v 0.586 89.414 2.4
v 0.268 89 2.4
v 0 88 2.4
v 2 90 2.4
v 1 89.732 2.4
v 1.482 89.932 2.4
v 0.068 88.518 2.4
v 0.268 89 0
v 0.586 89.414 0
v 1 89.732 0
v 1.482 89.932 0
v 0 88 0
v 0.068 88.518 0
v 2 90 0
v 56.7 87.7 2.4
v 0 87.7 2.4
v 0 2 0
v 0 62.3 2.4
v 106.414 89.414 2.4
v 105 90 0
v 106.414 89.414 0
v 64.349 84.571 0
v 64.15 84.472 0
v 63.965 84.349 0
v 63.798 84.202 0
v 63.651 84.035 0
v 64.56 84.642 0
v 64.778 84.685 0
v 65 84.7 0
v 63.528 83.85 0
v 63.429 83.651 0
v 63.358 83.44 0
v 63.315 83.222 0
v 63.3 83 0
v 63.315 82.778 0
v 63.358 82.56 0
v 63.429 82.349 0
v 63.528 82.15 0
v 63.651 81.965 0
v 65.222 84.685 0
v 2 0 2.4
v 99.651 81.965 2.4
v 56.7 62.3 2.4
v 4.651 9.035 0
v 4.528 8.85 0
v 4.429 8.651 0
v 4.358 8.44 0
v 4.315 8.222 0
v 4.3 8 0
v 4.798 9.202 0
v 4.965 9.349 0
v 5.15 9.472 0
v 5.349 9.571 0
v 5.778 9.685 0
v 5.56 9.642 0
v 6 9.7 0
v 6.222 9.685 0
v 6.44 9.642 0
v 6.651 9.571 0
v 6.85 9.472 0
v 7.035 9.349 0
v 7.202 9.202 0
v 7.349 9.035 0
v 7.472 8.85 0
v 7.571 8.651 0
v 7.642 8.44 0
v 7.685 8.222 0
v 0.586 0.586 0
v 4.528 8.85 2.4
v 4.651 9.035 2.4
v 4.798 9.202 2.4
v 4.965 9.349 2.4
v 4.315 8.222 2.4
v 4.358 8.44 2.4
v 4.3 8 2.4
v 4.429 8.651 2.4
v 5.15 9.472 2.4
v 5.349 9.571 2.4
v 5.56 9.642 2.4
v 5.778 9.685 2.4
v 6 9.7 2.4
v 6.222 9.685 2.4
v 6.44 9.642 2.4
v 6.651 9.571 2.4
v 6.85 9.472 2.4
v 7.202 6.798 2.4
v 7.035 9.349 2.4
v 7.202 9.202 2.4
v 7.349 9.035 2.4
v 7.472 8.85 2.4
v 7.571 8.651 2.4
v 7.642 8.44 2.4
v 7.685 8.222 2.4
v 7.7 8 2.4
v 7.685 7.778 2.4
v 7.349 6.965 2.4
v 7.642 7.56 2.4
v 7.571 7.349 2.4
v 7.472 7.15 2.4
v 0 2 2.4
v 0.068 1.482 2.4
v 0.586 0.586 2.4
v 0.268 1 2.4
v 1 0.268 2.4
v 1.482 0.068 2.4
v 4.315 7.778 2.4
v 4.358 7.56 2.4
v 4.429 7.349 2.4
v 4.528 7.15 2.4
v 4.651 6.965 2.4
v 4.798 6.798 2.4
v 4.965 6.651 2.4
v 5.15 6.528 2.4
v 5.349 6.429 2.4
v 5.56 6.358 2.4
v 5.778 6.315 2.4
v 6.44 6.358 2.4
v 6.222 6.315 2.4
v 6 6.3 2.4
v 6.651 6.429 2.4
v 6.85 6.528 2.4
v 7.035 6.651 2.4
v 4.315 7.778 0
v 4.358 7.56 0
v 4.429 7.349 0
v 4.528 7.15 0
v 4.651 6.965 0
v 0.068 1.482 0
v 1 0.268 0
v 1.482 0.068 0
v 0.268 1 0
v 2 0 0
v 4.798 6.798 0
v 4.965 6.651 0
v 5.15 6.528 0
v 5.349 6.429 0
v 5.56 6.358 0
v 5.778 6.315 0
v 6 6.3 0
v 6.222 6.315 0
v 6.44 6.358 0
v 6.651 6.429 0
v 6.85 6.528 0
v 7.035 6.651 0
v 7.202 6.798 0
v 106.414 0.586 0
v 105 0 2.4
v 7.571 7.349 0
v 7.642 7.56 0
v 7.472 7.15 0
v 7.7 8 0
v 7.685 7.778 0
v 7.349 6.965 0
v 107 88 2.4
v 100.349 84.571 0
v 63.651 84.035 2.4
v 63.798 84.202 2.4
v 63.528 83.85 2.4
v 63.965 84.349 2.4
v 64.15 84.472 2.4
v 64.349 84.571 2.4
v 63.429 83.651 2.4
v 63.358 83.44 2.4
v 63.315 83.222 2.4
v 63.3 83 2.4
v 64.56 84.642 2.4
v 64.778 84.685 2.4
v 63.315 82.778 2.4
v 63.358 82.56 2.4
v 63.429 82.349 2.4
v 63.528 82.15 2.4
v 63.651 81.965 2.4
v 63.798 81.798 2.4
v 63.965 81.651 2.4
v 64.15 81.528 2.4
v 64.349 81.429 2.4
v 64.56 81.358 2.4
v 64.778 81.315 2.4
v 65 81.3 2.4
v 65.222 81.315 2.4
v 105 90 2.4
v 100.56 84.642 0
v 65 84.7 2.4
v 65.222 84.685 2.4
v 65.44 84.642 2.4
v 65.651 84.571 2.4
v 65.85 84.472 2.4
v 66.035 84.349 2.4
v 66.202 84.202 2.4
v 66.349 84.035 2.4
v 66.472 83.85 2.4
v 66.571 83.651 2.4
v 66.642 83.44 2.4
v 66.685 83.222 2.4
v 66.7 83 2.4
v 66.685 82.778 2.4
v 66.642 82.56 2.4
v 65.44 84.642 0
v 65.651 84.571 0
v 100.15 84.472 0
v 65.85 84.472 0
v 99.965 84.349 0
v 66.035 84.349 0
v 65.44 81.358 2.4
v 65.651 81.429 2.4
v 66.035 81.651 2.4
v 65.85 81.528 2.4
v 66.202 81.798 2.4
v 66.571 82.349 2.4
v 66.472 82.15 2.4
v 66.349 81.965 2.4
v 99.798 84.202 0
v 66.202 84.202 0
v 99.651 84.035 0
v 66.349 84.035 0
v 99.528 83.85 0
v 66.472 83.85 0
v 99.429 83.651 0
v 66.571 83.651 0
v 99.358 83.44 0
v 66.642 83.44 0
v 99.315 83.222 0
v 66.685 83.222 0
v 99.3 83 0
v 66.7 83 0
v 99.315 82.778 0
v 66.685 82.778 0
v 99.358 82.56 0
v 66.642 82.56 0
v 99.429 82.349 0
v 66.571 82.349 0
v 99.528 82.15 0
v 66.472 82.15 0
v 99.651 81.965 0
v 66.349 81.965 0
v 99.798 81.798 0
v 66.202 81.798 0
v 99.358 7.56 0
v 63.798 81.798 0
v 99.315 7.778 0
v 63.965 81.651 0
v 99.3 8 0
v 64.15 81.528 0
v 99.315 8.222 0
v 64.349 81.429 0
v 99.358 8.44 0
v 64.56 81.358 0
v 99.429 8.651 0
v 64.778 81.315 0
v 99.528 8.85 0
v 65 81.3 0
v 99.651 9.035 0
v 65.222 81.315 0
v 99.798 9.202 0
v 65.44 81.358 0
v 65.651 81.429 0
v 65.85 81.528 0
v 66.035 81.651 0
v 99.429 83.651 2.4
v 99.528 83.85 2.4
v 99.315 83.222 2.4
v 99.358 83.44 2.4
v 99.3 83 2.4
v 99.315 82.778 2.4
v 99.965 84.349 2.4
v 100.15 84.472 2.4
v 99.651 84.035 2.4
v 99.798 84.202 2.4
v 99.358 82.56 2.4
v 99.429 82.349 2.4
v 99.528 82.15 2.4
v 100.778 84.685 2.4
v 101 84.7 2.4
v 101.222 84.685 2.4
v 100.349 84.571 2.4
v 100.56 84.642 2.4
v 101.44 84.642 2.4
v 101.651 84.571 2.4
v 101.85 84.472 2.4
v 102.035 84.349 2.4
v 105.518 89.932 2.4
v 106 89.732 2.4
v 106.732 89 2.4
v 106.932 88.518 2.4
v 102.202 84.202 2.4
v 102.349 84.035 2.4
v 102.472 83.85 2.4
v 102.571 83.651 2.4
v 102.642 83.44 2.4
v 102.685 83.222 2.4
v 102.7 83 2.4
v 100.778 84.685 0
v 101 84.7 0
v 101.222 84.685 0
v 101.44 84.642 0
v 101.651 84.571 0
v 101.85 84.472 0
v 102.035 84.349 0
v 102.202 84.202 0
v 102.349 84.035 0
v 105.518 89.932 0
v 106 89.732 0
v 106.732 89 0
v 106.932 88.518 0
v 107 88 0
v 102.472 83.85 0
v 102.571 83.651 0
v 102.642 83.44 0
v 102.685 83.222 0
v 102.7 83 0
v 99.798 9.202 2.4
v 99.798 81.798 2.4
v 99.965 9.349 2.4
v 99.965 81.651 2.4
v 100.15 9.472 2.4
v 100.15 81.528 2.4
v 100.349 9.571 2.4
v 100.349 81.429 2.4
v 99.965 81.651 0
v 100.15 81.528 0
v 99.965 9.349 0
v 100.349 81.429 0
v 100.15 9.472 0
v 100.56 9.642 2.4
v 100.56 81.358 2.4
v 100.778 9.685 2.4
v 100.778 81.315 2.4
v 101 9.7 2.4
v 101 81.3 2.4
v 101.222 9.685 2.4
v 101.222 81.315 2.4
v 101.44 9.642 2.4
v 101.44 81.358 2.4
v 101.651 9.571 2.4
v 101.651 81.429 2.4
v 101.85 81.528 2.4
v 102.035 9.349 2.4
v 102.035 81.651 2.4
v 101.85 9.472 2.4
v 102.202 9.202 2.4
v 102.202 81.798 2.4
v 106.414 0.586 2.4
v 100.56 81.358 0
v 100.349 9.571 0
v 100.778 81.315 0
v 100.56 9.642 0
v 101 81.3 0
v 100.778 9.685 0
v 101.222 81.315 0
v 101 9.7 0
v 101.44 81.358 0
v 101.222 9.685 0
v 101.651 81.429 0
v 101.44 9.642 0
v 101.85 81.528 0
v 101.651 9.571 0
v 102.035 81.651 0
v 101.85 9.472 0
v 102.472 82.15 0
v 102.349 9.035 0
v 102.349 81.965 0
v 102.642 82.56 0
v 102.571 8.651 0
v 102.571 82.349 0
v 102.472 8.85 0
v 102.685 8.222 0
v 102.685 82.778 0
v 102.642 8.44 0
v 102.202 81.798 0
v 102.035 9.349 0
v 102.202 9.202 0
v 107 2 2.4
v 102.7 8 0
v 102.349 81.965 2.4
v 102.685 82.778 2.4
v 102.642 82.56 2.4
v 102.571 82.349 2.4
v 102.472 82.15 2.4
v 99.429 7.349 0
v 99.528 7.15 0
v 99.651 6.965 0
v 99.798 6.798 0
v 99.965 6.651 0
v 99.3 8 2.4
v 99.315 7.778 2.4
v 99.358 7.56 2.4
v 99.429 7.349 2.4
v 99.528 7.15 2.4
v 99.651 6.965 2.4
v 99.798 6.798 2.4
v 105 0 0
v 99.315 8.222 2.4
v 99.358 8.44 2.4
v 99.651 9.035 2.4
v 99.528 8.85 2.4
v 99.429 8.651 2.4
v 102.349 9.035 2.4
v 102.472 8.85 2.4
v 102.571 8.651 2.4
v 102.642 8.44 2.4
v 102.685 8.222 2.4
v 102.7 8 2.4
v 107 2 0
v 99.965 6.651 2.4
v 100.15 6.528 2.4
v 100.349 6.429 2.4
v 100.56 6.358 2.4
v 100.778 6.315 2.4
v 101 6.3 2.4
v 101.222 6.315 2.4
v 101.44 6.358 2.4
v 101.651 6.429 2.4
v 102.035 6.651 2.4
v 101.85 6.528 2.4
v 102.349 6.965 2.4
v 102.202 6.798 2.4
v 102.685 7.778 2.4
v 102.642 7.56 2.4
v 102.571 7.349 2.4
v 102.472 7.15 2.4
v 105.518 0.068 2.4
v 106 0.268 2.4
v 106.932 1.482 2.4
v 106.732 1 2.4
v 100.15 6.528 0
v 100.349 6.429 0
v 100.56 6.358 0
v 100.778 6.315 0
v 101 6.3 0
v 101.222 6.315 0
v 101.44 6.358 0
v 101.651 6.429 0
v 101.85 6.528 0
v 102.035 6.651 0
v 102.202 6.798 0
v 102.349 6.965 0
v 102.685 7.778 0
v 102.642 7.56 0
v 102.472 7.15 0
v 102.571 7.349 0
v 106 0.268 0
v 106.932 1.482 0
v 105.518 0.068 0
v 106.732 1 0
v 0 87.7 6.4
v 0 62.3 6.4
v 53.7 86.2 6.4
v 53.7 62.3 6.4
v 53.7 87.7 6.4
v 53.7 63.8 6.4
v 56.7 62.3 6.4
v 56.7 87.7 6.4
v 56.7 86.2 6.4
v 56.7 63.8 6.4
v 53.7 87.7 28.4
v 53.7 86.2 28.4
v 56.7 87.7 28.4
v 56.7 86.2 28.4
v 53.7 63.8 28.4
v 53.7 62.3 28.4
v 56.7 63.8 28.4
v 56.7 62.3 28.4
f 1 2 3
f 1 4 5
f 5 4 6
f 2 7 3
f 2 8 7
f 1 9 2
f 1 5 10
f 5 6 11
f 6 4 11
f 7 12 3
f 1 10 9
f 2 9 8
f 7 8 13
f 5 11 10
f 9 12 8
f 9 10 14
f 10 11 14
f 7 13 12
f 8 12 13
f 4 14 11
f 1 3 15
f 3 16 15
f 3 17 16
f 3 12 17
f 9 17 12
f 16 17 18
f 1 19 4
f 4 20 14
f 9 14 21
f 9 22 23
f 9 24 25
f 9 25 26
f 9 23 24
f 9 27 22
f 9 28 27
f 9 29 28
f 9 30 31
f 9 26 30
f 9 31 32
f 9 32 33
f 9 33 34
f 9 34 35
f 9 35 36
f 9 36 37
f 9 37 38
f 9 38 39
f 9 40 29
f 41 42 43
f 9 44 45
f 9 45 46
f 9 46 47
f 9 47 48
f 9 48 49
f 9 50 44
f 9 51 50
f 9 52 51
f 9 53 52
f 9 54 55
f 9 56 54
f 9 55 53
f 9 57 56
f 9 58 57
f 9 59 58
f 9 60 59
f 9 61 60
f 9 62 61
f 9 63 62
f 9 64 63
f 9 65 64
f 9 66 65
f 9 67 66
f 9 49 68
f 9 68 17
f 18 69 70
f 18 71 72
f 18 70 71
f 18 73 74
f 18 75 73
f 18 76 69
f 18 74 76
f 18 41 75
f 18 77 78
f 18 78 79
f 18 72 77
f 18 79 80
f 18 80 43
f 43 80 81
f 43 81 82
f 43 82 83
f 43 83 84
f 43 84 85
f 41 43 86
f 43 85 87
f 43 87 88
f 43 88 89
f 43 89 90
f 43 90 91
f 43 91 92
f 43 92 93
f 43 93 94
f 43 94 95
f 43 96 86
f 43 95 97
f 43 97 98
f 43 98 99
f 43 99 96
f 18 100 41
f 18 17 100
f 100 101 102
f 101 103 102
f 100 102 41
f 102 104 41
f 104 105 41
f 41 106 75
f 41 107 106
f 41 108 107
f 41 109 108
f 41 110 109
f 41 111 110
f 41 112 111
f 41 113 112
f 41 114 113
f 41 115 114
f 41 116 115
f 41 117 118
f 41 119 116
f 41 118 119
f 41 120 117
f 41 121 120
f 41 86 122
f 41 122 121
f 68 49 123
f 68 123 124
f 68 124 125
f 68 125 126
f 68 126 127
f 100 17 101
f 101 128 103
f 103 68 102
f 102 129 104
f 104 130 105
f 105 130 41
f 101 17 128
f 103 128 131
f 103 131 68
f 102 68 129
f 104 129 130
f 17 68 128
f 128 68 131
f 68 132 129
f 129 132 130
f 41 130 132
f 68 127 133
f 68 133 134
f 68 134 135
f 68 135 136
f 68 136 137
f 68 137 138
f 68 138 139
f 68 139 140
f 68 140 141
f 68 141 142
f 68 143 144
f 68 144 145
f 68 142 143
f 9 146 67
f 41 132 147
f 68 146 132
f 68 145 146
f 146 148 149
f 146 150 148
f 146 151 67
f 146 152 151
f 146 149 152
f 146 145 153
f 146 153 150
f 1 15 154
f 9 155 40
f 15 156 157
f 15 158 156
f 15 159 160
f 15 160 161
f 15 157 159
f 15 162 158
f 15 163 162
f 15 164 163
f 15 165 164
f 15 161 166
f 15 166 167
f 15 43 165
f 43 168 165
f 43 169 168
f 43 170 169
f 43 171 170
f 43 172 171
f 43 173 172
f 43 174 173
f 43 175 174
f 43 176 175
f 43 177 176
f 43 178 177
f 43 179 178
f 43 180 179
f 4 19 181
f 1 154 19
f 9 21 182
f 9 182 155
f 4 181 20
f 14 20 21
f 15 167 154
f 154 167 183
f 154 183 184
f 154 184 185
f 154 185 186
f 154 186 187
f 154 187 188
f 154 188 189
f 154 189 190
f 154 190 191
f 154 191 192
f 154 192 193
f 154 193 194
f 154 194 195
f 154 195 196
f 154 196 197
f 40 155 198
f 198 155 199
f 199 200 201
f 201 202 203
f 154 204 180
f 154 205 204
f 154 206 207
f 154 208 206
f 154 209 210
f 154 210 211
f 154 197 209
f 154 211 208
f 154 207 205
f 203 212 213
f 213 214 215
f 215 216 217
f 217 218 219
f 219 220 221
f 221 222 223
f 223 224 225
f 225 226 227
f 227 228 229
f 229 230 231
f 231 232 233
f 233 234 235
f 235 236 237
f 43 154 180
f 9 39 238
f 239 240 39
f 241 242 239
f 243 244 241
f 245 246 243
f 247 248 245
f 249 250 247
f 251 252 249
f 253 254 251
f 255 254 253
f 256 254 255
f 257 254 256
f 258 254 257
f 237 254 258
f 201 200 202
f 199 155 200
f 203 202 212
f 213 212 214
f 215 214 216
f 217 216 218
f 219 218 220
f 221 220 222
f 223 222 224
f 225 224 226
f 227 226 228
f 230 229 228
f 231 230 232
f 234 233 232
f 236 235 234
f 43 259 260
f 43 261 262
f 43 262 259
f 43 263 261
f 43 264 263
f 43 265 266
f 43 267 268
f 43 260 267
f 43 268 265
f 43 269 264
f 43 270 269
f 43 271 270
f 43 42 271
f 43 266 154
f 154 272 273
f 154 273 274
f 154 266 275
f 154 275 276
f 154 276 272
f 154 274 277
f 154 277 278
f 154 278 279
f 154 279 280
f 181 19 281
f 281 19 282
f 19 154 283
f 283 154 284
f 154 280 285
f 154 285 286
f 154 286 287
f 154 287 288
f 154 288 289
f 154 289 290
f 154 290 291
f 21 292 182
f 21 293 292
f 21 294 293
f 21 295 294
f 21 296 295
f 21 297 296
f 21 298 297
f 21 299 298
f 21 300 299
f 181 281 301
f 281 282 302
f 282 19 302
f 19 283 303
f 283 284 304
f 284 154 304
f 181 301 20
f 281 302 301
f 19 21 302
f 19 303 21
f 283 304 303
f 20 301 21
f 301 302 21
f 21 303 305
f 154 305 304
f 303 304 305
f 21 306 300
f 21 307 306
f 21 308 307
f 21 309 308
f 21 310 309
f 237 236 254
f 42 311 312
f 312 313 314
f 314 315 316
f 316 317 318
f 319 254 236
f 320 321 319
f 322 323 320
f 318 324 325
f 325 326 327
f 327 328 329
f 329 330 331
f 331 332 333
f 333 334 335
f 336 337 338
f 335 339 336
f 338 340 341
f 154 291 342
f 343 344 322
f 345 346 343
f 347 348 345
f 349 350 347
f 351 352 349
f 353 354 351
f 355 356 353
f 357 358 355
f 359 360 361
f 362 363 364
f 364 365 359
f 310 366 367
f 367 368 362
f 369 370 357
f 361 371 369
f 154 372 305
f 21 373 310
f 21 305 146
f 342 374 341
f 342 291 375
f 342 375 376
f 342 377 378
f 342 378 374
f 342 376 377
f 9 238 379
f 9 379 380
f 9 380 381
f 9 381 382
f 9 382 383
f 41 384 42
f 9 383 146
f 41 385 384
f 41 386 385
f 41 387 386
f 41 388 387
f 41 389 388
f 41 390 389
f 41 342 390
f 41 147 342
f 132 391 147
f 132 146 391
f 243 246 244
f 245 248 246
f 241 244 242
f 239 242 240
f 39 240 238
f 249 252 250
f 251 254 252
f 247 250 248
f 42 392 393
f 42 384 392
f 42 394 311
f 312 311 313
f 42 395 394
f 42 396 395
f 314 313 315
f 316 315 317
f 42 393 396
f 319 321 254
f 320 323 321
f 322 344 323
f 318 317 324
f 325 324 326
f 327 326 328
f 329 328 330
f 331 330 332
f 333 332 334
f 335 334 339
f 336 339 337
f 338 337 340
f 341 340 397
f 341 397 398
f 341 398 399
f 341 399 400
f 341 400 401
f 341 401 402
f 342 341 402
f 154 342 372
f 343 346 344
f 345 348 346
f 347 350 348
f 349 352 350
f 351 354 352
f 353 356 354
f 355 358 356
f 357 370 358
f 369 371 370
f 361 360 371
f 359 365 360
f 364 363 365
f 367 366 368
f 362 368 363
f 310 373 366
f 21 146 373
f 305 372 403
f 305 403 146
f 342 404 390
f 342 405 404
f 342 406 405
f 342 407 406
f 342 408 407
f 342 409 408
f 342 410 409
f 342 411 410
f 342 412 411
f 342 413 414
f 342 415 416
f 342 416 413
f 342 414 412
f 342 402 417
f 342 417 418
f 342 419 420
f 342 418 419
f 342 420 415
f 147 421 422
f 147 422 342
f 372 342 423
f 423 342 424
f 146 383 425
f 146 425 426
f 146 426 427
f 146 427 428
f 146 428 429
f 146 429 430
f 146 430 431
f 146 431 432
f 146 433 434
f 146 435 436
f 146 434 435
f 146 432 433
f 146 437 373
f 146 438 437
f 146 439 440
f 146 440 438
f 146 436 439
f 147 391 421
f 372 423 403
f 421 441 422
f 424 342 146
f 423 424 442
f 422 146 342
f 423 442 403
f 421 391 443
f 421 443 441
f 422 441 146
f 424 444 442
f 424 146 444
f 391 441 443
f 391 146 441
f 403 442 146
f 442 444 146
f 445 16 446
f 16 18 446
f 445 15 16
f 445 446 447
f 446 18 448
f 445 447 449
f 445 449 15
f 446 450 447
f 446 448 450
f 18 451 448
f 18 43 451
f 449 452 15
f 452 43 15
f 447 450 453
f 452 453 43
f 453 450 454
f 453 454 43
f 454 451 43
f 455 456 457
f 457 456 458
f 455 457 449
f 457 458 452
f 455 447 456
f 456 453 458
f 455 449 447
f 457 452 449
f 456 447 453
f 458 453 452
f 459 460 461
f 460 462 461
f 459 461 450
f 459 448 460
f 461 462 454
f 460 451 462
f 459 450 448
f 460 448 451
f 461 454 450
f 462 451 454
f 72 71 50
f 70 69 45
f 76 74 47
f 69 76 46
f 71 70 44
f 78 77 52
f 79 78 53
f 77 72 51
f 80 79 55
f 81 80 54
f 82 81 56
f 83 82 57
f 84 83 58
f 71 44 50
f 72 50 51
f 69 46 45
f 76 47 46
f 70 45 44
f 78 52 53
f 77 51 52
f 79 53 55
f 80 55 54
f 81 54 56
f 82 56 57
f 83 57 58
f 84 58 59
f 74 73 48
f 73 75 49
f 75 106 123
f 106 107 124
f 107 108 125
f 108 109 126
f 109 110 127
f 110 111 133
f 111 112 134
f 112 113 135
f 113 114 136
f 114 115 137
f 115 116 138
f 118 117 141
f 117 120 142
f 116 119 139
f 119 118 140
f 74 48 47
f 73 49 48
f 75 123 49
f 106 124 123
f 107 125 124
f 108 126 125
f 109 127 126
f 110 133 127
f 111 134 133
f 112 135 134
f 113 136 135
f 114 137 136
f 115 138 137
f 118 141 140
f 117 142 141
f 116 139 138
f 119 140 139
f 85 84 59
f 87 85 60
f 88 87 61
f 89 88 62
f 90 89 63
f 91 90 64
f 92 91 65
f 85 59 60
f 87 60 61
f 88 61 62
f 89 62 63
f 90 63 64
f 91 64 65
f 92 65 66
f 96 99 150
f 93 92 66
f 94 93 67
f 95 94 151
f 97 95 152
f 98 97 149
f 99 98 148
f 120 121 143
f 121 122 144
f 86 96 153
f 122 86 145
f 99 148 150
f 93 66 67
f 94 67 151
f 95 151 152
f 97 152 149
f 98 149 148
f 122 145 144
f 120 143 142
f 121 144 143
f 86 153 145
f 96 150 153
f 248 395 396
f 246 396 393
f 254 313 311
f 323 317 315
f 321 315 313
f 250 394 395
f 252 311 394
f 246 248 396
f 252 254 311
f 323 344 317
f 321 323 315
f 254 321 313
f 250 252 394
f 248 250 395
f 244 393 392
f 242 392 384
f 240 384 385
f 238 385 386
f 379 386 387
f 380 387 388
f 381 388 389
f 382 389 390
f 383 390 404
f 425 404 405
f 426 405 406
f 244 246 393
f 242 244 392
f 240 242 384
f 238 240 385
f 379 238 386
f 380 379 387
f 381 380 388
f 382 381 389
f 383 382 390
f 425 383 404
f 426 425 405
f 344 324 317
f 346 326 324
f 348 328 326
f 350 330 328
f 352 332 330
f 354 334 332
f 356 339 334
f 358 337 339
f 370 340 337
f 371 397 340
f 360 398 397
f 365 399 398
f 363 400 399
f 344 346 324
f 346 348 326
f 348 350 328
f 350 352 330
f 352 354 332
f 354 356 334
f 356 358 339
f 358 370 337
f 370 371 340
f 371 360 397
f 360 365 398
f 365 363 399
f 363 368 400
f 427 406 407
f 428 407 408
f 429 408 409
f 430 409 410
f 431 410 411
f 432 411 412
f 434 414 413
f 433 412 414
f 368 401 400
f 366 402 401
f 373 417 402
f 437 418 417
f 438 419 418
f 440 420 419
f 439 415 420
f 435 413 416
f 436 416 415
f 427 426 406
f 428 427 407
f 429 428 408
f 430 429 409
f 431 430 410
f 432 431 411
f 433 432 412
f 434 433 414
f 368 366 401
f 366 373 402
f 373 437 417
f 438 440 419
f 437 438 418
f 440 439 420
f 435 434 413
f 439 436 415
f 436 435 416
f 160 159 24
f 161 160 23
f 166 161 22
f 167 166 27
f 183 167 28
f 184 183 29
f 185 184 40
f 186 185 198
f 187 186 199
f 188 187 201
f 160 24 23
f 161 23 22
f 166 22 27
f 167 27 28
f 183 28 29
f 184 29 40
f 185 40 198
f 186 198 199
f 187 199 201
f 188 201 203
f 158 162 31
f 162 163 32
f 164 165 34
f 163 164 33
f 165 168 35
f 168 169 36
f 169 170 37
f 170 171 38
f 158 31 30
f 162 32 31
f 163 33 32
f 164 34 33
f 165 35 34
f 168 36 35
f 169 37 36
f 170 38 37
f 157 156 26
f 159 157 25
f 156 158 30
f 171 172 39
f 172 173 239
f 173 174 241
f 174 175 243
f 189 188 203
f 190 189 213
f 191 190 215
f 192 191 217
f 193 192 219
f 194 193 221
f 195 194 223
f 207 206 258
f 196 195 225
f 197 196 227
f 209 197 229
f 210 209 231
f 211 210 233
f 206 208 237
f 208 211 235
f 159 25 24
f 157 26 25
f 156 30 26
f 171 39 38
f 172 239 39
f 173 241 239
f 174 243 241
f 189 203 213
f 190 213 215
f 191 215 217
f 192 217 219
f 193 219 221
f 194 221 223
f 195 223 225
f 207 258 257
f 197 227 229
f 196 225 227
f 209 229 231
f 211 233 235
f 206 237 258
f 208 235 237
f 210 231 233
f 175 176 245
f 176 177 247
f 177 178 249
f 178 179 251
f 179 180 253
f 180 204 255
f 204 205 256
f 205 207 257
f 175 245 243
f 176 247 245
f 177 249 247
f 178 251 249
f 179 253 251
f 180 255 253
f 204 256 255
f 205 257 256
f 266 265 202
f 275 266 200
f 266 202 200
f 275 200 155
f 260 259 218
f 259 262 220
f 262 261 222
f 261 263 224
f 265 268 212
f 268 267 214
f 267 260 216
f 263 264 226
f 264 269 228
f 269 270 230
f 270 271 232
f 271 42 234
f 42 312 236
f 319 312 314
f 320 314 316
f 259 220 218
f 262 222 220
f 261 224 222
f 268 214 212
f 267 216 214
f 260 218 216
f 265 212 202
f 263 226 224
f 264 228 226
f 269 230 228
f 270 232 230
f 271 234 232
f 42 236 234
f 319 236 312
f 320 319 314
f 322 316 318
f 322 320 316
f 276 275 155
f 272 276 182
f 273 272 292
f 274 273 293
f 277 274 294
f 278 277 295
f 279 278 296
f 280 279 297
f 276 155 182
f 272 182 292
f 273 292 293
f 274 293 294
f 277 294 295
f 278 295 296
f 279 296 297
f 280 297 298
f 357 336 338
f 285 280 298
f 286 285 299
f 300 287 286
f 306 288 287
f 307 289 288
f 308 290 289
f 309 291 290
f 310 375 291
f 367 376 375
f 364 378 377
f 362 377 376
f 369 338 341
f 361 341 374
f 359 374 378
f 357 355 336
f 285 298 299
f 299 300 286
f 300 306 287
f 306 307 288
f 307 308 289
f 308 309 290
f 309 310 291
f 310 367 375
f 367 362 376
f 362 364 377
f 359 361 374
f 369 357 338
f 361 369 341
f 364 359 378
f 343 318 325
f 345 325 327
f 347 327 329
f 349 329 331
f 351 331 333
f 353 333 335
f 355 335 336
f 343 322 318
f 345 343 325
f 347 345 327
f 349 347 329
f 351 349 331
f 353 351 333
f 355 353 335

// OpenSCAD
// Concept v0; mm. Regenerate using dimensions.json and build.py.
translate([0, 90.0, 40.4]) {
rotate([180, 0, 0]) {
difference() {
difference() {
difference() {
difference() {
union() {
union() {
union() {
translate([0, 0, 38]) {
hull() {
union() {
union() {
union() {
translate([2, 2, 0]) {
cylinder(h=2.4,r=2,$fn=24);
}
translate([2, 88.0, 0]) {
cylinder(h=2.4,r=2,$fn=24);
}
}
translate([105.0, 2, 0]) {
cylinder(h=2.4,r=2,$fn=24);
}
}
translate([105.0, 88.0, 0]) {
cylinder(h=2.4,r=2,$fn=24);
}
}
}
}
translate([0, 2.3, 34.0]) {
cube([56.7, 25.4, 4.05]);
}
}
translate([53.7, 2.3, 12.0]) {
cube([3, 1.5, 26.05]);
}
}
translate([53.7, 26.2, 12.0]) {
cube([3, 1.5, 26.05]);
}
}
translate([6, 82.0, 37.95]) {
cylinder(h=2.5,r=1.7,$fn=48);
}
}
translate([101.0, 82.0, 37.95]) {
cylinder(h=2.5,r=1.7,$fn=48);
}
}
translate([65.0, 7, 37.95]) {
cylinder(h=2.5,r=1.7,$fn=48);
}
}
translate([101.0, 7, 37.95]) {
cylinder(h=2.5,r=1.7,$fn=48);
}
}
}
}
